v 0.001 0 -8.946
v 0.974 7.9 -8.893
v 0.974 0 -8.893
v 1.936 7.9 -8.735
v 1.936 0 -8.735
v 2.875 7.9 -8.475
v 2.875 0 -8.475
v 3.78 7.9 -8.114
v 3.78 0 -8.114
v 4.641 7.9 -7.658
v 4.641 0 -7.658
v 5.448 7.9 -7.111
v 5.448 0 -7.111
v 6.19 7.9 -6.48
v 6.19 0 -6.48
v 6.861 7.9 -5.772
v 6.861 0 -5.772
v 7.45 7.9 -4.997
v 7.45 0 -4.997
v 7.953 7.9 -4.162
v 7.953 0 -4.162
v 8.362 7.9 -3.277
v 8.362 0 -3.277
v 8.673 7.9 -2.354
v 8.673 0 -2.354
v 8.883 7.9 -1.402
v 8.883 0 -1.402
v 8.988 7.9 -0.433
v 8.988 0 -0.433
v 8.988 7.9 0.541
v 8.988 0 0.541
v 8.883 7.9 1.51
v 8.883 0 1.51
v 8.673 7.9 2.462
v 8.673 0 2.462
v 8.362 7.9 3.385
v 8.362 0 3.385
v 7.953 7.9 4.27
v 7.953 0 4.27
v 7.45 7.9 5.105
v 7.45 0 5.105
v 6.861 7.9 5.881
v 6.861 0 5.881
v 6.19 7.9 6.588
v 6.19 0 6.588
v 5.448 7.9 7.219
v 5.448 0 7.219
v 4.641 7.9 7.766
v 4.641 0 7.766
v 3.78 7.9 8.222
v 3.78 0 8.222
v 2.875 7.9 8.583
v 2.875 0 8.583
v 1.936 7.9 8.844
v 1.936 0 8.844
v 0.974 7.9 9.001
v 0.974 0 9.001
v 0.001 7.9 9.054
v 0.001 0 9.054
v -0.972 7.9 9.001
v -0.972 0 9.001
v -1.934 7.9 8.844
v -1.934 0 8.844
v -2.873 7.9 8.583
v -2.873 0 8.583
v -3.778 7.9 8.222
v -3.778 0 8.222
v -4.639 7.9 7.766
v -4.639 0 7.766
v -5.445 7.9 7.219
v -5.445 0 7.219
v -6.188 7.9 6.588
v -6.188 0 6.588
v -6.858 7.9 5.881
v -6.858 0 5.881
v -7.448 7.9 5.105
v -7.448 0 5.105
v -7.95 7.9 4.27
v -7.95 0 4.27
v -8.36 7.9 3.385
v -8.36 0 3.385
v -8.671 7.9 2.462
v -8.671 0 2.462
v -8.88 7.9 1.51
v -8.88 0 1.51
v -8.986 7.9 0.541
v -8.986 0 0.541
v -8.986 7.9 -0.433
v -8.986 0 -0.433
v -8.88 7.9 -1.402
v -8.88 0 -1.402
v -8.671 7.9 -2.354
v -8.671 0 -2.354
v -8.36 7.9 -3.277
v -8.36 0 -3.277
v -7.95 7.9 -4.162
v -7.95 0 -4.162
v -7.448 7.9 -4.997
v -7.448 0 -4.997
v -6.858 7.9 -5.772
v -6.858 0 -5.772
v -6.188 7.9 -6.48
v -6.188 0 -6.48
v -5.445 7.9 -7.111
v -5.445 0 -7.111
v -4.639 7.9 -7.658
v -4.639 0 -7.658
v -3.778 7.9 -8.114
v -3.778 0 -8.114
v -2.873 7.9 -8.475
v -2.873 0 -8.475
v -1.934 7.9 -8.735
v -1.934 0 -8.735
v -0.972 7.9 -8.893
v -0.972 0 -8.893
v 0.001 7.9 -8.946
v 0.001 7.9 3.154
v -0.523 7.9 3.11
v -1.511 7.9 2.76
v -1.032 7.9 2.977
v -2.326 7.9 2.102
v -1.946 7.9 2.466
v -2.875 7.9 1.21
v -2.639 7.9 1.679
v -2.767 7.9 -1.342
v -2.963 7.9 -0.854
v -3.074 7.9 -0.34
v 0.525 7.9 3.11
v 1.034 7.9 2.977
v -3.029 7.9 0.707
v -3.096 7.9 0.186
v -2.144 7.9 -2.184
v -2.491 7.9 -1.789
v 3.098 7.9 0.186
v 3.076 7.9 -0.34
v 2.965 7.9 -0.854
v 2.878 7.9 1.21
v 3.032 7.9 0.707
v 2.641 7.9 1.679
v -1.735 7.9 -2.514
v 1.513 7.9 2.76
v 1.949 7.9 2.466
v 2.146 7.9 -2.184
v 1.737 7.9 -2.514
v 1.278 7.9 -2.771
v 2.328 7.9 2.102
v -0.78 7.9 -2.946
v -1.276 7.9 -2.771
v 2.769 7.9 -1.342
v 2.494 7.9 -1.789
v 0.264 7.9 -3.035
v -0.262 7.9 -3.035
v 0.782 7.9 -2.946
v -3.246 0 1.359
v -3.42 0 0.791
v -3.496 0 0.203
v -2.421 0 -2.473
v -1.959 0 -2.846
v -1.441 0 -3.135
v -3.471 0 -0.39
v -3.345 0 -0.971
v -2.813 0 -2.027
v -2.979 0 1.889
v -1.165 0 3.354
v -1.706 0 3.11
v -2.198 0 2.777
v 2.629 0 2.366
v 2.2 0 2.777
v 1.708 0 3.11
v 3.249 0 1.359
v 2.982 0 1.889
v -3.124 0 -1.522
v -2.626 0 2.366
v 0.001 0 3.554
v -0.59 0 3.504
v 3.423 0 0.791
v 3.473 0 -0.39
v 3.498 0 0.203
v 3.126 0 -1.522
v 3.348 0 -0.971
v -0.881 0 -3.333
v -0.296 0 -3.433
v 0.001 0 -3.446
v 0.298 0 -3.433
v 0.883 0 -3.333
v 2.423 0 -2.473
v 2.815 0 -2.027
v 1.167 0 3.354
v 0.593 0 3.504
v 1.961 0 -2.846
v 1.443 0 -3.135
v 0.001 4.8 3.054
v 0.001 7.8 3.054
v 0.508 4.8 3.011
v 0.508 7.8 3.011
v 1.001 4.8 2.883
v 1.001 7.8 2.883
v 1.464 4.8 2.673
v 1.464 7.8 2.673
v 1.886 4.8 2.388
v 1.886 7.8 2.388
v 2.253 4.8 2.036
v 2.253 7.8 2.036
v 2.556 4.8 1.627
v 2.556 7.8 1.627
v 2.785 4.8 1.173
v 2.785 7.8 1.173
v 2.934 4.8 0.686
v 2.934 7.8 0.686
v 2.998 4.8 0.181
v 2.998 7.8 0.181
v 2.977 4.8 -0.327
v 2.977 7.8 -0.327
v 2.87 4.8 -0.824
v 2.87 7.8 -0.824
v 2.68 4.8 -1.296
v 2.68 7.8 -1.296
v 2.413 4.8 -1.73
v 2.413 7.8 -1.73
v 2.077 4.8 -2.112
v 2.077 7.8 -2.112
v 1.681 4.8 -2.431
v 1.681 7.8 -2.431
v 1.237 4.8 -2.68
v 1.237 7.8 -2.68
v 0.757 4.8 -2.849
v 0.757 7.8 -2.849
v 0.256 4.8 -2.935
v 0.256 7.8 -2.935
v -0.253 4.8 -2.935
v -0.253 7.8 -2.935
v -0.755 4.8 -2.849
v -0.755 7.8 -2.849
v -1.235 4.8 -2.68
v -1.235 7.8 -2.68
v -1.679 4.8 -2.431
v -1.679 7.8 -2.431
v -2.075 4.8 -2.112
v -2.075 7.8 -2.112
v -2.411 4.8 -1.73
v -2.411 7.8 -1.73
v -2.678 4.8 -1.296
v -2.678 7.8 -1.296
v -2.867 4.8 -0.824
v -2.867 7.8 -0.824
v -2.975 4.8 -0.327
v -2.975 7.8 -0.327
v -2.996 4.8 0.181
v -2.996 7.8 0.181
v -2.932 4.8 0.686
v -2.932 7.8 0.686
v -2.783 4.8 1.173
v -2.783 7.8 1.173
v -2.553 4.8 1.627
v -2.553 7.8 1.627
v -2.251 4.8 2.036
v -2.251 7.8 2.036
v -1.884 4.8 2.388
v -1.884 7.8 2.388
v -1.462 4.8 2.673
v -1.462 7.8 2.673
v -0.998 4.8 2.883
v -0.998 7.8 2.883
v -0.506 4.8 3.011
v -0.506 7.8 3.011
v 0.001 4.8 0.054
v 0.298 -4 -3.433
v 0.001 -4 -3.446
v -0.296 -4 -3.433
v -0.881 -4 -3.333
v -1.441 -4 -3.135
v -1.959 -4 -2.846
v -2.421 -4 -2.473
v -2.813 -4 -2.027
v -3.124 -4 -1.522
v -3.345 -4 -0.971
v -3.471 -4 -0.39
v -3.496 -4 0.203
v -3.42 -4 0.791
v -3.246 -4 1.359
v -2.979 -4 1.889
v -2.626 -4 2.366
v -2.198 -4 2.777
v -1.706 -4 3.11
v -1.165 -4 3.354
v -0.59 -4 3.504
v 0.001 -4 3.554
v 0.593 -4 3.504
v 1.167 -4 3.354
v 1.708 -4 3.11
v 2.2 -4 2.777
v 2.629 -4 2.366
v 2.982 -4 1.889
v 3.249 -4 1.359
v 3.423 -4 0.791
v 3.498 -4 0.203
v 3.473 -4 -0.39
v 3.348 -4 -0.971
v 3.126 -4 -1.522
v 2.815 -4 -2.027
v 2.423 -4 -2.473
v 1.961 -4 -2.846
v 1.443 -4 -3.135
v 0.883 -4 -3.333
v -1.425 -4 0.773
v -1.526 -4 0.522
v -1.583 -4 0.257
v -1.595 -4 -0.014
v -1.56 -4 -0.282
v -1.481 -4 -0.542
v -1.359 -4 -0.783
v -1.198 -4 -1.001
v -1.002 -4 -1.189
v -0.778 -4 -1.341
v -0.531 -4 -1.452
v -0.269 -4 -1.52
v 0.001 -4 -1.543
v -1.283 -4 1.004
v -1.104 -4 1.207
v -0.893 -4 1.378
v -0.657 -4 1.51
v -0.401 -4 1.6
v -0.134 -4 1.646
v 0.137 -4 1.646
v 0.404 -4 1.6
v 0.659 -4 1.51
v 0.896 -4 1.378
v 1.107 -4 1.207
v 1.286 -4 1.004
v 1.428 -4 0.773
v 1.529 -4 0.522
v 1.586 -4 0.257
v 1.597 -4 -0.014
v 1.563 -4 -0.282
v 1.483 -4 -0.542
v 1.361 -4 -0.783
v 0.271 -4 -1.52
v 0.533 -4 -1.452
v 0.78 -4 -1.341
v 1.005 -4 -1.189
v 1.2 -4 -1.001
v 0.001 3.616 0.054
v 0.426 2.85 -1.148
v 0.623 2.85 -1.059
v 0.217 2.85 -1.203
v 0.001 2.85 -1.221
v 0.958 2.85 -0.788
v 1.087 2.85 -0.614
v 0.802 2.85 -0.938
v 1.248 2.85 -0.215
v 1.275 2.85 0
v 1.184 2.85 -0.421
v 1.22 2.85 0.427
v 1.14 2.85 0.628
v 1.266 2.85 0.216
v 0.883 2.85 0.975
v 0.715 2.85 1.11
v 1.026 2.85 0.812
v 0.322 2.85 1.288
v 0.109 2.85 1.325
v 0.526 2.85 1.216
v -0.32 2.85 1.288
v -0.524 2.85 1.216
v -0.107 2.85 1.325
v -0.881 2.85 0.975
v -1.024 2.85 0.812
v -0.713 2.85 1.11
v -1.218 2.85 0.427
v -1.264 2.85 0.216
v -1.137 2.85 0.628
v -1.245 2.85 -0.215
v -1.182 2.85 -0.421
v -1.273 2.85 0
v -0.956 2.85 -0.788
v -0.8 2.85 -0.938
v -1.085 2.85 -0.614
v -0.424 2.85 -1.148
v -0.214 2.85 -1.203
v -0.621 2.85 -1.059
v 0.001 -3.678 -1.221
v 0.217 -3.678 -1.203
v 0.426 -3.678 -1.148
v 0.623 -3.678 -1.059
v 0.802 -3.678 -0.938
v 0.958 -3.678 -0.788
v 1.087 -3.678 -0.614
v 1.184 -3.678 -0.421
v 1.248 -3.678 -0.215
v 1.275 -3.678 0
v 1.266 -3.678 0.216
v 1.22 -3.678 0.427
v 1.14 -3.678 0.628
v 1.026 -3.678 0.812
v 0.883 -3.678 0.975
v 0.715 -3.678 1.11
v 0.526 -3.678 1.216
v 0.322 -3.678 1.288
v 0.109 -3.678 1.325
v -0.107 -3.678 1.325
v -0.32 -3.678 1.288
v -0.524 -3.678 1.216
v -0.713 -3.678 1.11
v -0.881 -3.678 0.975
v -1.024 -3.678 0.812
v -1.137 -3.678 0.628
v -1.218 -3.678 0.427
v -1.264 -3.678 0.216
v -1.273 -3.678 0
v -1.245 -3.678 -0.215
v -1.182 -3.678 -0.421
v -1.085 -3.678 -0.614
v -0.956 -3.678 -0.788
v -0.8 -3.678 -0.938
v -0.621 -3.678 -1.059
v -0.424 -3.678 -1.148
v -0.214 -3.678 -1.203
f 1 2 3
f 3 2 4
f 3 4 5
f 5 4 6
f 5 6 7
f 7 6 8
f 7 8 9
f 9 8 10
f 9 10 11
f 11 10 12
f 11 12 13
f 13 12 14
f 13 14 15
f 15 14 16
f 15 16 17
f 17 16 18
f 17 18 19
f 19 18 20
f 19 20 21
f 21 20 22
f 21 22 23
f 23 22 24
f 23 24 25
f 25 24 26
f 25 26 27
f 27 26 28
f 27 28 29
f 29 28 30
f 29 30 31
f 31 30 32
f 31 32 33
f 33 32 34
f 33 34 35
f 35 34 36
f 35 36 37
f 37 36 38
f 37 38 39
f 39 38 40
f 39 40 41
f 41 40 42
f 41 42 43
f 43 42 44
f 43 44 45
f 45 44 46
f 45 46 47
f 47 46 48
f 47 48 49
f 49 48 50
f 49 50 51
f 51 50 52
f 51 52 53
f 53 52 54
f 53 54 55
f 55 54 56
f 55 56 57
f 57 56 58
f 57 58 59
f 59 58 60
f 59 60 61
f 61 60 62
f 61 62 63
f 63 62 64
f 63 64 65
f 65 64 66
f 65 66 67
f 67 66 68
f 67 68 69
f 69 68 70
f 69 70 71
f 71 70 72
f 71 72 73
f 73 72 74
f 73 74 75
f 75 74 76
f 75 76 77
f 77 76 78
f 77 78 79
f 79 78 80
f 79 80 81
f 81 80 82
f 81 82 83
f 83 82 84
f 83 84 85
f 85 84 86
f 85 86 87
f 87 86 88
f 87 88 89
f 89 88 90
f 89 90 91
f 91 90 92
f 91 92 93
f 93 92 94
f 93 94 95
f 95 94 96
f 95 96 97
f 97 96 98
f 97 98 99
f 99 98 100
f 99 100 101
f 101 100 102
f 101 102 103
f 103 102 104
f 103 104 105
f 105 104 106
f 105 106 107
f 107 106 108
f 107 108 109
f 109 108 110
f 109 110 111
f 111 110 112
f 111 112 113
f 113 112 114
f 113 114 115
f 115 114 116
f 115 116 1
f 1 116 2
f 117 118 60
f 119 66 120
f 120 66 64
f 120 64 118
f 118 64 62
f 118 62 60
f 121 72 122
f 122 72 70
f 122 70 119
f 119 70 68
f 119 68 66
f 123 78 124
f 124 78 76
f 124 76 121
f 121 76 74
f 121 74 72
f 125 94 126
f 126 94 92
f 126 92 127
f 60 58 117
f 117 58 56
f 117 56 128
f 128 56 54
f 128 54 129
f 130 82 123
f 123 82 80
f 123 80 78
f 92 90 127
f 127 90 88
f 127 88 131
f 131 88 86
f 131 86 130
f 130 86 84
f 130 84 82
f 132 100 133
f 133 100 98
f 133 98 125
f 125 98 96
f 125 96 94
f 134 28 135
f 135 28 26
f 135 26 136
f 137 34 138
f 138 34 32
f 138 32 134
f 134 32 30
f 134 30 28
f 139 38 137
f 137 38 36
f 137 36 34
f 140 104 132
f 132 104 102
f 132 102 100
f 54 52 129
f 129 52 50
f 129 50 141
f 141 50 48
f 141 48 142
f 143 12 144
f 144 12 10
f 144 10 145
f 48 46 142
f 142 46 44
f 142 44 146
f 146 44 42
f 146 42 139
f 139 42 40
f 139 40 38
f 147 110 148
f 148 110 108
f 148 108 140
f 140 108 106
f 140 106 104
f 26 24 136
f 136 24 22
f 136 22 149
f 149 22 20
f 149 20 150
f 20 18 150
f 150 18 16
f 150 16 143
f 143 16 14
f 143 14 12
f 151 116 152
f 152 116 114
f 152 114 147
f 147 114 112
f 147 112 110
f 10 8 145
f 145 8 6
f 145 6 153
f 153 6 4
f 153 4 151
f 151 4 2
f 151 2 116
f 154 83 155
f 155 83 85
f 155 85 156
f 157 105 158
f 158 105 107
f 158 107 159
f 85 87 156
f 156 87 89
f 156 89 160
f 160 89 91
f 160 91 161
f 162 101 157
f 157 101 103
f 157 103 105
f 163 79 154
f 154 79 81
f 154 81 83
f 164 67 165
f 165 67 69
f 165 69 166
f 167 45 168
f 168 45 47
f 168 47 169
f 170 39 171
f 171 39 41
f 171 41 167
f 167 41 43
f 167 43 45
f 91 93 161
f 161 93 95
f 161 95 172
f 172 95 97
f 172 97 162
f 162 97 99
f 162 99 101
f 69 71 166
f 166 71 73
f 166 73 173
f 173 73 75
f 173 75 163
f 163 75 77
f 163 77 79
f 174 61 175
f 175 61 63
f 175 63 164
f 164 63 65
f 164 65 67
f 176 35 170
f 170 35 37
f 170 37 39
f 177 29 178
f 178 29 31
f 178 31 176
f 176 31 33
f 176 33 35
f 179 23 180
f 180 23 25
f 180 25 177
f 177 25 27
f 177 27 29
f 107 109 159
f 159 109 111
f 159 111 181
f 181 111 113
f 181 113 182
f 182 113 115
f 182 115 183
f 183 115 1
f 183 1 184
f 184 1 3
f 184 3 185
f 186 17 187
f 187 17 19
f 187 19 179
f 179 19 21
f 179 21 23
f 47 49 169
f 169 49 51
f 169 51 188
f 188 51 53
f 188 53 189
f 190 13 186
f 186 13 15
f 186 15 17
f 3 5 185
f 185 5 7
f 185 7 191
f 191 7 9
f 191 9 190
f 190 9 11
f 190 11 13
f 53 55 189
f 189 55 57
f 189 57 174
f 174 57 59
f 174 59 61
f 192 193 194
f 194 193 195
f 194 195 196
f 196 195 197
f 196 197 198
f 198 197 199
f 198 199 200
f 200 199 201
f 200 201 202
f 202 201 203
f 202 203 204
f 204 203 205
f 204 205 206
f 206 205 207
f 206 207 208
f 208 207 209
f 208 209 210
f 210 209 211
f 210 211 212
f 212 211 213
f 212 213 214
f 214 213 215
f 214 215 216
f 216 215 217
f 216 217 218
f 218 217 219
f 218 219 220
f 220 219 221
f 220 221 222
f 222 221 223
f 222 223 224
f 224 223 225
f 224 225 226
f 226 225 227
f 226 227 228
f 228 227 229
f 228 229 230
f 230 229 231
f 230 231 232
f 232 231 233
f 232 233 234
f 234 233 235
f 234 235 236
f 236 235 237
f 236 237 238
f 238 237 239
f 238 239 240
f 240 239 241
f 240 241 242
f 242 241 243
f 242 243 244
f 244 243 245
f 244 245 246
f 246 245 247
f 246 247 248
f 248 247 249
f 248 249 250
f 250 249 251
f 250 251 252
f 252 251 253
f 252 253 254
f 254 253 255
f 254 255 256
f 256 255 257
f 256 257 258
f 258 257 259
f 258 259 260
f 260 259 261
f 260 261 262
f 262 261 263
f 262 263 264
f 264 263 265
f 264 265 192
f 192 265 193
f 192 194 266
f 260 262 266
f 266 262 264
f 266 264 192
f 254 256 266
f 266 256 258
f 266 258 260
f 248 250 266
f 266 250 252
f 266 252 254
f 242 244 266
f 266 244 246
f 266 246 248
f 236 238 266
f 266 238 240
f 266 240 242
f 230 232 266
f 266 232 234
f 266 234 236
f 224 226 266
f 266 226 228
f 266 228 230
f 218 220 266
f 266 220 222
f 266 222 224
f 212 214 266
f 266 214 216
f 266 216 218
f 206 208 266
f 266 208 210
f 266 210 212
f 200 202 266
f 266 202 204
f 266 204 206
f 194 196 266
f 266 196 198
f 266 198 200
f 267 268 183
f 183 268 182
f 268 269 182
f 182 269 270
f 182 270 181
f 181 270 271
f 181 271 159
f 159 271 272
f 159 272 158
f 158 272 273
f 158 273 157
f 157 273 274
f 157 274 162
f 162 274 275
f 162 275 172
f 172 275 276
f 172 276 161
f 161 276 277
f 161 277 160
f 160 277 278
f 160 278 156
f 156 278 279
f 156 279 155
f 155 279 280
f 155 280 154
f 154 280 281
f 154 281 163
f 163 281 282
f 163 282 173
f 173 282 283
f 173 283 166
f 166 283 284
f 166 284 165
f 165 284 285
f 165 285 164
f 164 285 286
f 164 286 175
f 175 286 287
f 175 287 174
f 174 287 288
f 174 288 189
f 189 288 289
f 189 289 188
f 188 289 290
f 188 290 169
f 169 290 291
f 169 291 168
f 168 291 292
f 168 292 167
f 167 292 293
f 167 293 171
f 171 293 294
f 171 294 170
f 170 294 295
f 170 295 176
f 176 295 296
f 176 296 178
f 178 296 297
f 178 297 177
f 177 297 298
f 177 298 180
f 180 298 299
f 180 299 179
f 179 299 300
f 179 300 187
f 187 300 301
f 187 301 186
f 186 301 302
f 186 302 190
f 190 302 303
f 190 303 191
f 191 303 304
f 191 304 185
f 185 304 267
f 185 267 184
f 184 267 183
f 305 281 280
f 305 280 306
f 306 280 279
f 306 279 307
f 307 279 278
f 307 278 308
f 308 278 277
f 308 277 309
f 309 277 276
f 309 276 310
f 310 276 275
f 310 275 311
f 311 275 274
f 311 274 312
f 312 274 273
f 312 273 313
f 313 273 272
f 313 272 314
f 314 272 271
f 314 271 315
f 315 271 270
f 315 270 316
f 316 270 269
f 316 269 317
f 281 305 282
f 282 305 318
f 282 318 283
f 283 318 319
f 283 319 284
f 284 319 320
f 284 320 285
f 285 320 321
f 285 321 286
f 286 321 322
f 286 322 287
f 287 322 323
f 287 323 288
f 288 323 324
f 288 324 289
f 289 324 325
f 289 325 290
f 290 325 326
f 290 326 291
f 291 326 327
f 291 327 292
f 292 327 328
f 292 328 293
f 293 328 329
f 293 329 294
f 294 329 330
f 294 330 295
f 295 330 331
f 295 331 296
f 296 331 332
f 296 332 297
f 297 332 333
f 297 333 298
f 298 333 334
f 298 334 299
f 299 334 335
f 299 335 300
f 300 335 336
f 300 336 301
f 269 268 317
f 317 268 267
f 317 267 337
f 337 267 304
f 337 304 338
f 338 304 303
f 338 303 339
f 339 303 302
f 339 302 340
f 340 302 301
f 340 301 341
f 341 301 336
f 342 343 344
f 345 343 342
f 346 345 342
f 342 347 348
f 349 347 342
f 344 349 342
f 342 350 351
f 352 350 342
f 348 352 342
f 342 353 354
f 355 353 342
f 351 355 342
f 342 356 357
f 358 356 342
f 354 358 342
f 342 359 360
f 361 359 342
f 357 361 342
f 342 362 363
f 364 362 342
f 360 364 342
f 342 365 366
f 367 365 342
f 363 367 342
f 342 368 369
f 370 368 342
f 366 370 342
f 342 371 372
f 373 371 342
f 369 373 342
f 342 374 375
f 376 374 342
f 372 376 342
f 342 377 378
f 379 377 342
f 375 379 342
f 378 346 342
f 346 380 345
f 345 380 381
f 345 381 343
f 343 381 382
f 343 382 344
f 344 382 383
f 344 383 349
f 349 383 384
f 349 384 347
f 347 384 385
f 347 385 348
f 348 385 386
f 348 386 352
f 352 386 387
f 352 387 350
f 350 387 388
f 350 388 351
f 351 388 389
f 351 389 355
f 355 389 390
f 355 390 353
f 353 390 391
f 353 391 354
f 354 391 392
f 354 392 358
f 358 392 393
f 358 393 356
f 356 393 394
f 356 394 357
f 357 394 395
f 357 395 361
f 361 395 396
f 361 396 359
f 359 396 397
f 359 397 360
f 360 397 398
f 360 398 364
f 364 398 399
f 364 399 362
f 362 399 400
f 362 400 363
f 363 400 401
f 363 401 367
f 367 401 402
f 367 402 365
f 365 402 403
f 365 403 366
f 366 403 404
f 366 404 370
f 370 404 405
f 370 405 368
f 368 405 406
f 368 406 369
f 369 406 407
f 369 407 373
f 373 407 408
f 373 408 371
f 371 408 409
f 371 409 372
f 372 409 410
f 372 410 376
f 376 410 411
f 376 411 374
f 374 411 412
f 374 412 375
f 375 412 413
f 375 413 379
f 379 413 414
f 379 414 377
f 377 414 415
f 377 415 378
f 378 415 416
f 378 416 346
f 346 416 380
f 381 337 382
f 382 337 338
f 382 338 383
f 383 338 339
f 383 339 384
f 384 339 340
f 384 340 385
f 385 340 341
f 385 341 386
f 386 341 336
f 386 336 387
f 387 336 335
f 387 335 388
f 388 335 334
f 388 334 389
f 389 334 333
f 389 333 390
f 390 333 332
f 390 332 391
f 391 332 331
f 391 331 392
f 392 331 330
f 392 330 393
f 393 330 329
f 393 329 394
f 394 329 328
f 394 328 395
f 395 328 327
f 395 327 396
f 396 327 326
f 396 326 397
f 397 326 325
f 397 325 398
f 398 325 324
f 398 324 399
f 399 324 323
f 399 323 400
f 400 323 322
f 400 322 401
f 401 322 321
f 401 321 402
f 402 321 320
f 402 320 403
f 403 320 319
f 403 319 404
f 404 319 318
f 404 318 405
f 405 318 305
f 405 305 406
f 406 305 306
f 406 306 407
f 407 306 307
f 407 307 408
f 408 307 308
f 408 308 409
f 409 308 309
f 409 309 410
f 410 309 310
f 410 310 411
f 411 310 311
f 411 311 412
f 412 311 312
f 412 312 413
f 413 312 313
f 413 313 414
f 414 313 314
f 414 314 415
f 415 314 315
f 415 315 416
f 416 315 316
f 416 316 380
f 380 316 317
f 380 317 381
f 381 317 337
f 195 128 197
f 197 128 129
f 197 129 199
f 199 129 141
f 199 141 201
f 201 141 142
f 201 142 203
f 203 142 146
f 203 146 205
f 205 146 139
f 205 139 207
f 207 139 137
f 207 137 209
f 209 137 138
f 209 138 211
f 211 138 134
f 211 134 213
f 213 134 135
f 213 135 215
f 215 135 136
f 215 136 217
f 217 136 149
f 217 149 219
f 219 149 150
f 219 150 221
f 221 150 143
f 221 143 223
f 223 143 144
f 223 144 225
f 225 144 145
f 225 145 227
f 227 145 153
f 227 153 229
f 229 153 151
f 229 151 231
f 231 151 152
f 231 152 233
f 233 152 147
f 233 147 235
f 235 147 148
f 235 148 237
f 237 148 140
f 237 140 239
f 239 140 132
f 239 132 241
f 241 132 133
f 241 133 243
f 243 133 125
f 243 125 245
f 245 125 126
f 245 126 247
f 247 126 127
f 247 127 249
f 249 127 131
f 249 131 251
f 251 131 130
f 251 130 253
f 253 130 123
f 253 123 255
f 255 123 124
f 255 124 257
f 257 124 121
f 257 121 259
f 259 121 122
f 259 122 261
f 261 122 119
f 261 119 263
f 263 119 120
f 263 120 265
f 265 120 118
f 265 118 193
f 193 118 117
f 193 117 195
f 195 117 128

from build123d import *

# Parameters (mm, degrees)
SKETCH1_R                                       = 9
BOSS_EXTRUDE1_DEPTH                             = 7.9
SKETCH2_R                                       = 3
CUT_EXTRUDE1_DEPTH                              = 3.1
SKETCH3_R                                       = 3.5
BOSS_EXTRUDE2_DEPTH                             = 4
TAPPED_HOLE_FOR_M2_5X0_45_HELICOIL1_D           = 2.55
TAPPED_HOLE_FOR_M2_5X0_45_HELICOIL1_DEPTH       = 6.85
TAPPED_HOLE_FOR_M2_5X0_45_HELICOIL1_CSINK_D     = 3.195
TAPPED_HOLE_FOR_M2_5X0_45_HELICOIL1_CSINK_ANGLE = 90
TAPPED_HOLE_FOR_M2_5X0_45_HELICOIL1_TIP         = 0.766097289
CHAMFER1_SIZE                                   = 0.1


with BuildPart() as part:
    # Sketch1 → Boss-Extrude1 (new body)
    with BuildSketch(Plane(origin=(0, 0, 0), x_dir=(1, 0, 0), z_dir=(0, 1, 0))):
        Circle(SKETCH1_R)
    extrude(amount=BOSS_EXTRUDE1_DEPTH)

    # Sketch2 → Cut-Extrude1 (cut)
    with BuildSketch(Plane(origin=(0, 7.9, 0), x_dir=(1, 0, 0), z_dir=(0, 1, 0))):
        Circle(SKETCH2_R)
    extrude(amount=-CUT_EXTRUDE1_DEPTH, mode=Mode.SUBTRACT)

    # Sketch3 → Boss-Extrude2 (add)
    with BuildSketch(Plane.XZ):
        Circle(SKETCH3_R)
    extrude(amount=BOSS_EXTRUDE2_DEPTH)

    # Tapped Hole for M2.5x0.45 Helicoil1
    with Locations(Plane(origin=(0, -4, 0), x_dir=(-1, 0, 0), z_dir=(0, -1, 0))):
        with Locations((0, 0)):
            CounterSinkHole(TAPPED_HOLE_FOR_M2_5X0_45_HELICOIL1_D / 2, TAPPED_HOLE_FOR_M2_5X0_45_HELICOIL1_CSINK_D / 2, depth=TAPPED_HOLE_FOR_M2_5X0_45_HELICOIL1_DEPTH, counter_sink_angle=TAPPED_HOLE_FOR_M2_5X0_45_HELICOIL1_CSINK_ANGLE)
            with Locations((0, 0, -(TAPPED_HOLE_FOR_M2_5X0_45_HELICOIL1_DEPTH + TAPPED_HOLE_FOR_M2_5X0_45_HELICOIL1_TIP / 2))):  # 118° drill point
                Cone(0, TAPPED_HOLE_FOR_M2_5X0_45_HELICOIL1_D / 2, TAPPED_HOLE_FOR_M2_5X0_45_HELICOIL1_TIP, mode=Mode.SUBTRACT)

    # Chamfer1
    chamfer1_edges = [part.edges().sort_by_distance(p)[0] for p in [
        (-3, 7.9, 0),
    ]]
    chamfer(chamfer1_edges, length=CHAMFER1_SIZE)


solid = part.part
